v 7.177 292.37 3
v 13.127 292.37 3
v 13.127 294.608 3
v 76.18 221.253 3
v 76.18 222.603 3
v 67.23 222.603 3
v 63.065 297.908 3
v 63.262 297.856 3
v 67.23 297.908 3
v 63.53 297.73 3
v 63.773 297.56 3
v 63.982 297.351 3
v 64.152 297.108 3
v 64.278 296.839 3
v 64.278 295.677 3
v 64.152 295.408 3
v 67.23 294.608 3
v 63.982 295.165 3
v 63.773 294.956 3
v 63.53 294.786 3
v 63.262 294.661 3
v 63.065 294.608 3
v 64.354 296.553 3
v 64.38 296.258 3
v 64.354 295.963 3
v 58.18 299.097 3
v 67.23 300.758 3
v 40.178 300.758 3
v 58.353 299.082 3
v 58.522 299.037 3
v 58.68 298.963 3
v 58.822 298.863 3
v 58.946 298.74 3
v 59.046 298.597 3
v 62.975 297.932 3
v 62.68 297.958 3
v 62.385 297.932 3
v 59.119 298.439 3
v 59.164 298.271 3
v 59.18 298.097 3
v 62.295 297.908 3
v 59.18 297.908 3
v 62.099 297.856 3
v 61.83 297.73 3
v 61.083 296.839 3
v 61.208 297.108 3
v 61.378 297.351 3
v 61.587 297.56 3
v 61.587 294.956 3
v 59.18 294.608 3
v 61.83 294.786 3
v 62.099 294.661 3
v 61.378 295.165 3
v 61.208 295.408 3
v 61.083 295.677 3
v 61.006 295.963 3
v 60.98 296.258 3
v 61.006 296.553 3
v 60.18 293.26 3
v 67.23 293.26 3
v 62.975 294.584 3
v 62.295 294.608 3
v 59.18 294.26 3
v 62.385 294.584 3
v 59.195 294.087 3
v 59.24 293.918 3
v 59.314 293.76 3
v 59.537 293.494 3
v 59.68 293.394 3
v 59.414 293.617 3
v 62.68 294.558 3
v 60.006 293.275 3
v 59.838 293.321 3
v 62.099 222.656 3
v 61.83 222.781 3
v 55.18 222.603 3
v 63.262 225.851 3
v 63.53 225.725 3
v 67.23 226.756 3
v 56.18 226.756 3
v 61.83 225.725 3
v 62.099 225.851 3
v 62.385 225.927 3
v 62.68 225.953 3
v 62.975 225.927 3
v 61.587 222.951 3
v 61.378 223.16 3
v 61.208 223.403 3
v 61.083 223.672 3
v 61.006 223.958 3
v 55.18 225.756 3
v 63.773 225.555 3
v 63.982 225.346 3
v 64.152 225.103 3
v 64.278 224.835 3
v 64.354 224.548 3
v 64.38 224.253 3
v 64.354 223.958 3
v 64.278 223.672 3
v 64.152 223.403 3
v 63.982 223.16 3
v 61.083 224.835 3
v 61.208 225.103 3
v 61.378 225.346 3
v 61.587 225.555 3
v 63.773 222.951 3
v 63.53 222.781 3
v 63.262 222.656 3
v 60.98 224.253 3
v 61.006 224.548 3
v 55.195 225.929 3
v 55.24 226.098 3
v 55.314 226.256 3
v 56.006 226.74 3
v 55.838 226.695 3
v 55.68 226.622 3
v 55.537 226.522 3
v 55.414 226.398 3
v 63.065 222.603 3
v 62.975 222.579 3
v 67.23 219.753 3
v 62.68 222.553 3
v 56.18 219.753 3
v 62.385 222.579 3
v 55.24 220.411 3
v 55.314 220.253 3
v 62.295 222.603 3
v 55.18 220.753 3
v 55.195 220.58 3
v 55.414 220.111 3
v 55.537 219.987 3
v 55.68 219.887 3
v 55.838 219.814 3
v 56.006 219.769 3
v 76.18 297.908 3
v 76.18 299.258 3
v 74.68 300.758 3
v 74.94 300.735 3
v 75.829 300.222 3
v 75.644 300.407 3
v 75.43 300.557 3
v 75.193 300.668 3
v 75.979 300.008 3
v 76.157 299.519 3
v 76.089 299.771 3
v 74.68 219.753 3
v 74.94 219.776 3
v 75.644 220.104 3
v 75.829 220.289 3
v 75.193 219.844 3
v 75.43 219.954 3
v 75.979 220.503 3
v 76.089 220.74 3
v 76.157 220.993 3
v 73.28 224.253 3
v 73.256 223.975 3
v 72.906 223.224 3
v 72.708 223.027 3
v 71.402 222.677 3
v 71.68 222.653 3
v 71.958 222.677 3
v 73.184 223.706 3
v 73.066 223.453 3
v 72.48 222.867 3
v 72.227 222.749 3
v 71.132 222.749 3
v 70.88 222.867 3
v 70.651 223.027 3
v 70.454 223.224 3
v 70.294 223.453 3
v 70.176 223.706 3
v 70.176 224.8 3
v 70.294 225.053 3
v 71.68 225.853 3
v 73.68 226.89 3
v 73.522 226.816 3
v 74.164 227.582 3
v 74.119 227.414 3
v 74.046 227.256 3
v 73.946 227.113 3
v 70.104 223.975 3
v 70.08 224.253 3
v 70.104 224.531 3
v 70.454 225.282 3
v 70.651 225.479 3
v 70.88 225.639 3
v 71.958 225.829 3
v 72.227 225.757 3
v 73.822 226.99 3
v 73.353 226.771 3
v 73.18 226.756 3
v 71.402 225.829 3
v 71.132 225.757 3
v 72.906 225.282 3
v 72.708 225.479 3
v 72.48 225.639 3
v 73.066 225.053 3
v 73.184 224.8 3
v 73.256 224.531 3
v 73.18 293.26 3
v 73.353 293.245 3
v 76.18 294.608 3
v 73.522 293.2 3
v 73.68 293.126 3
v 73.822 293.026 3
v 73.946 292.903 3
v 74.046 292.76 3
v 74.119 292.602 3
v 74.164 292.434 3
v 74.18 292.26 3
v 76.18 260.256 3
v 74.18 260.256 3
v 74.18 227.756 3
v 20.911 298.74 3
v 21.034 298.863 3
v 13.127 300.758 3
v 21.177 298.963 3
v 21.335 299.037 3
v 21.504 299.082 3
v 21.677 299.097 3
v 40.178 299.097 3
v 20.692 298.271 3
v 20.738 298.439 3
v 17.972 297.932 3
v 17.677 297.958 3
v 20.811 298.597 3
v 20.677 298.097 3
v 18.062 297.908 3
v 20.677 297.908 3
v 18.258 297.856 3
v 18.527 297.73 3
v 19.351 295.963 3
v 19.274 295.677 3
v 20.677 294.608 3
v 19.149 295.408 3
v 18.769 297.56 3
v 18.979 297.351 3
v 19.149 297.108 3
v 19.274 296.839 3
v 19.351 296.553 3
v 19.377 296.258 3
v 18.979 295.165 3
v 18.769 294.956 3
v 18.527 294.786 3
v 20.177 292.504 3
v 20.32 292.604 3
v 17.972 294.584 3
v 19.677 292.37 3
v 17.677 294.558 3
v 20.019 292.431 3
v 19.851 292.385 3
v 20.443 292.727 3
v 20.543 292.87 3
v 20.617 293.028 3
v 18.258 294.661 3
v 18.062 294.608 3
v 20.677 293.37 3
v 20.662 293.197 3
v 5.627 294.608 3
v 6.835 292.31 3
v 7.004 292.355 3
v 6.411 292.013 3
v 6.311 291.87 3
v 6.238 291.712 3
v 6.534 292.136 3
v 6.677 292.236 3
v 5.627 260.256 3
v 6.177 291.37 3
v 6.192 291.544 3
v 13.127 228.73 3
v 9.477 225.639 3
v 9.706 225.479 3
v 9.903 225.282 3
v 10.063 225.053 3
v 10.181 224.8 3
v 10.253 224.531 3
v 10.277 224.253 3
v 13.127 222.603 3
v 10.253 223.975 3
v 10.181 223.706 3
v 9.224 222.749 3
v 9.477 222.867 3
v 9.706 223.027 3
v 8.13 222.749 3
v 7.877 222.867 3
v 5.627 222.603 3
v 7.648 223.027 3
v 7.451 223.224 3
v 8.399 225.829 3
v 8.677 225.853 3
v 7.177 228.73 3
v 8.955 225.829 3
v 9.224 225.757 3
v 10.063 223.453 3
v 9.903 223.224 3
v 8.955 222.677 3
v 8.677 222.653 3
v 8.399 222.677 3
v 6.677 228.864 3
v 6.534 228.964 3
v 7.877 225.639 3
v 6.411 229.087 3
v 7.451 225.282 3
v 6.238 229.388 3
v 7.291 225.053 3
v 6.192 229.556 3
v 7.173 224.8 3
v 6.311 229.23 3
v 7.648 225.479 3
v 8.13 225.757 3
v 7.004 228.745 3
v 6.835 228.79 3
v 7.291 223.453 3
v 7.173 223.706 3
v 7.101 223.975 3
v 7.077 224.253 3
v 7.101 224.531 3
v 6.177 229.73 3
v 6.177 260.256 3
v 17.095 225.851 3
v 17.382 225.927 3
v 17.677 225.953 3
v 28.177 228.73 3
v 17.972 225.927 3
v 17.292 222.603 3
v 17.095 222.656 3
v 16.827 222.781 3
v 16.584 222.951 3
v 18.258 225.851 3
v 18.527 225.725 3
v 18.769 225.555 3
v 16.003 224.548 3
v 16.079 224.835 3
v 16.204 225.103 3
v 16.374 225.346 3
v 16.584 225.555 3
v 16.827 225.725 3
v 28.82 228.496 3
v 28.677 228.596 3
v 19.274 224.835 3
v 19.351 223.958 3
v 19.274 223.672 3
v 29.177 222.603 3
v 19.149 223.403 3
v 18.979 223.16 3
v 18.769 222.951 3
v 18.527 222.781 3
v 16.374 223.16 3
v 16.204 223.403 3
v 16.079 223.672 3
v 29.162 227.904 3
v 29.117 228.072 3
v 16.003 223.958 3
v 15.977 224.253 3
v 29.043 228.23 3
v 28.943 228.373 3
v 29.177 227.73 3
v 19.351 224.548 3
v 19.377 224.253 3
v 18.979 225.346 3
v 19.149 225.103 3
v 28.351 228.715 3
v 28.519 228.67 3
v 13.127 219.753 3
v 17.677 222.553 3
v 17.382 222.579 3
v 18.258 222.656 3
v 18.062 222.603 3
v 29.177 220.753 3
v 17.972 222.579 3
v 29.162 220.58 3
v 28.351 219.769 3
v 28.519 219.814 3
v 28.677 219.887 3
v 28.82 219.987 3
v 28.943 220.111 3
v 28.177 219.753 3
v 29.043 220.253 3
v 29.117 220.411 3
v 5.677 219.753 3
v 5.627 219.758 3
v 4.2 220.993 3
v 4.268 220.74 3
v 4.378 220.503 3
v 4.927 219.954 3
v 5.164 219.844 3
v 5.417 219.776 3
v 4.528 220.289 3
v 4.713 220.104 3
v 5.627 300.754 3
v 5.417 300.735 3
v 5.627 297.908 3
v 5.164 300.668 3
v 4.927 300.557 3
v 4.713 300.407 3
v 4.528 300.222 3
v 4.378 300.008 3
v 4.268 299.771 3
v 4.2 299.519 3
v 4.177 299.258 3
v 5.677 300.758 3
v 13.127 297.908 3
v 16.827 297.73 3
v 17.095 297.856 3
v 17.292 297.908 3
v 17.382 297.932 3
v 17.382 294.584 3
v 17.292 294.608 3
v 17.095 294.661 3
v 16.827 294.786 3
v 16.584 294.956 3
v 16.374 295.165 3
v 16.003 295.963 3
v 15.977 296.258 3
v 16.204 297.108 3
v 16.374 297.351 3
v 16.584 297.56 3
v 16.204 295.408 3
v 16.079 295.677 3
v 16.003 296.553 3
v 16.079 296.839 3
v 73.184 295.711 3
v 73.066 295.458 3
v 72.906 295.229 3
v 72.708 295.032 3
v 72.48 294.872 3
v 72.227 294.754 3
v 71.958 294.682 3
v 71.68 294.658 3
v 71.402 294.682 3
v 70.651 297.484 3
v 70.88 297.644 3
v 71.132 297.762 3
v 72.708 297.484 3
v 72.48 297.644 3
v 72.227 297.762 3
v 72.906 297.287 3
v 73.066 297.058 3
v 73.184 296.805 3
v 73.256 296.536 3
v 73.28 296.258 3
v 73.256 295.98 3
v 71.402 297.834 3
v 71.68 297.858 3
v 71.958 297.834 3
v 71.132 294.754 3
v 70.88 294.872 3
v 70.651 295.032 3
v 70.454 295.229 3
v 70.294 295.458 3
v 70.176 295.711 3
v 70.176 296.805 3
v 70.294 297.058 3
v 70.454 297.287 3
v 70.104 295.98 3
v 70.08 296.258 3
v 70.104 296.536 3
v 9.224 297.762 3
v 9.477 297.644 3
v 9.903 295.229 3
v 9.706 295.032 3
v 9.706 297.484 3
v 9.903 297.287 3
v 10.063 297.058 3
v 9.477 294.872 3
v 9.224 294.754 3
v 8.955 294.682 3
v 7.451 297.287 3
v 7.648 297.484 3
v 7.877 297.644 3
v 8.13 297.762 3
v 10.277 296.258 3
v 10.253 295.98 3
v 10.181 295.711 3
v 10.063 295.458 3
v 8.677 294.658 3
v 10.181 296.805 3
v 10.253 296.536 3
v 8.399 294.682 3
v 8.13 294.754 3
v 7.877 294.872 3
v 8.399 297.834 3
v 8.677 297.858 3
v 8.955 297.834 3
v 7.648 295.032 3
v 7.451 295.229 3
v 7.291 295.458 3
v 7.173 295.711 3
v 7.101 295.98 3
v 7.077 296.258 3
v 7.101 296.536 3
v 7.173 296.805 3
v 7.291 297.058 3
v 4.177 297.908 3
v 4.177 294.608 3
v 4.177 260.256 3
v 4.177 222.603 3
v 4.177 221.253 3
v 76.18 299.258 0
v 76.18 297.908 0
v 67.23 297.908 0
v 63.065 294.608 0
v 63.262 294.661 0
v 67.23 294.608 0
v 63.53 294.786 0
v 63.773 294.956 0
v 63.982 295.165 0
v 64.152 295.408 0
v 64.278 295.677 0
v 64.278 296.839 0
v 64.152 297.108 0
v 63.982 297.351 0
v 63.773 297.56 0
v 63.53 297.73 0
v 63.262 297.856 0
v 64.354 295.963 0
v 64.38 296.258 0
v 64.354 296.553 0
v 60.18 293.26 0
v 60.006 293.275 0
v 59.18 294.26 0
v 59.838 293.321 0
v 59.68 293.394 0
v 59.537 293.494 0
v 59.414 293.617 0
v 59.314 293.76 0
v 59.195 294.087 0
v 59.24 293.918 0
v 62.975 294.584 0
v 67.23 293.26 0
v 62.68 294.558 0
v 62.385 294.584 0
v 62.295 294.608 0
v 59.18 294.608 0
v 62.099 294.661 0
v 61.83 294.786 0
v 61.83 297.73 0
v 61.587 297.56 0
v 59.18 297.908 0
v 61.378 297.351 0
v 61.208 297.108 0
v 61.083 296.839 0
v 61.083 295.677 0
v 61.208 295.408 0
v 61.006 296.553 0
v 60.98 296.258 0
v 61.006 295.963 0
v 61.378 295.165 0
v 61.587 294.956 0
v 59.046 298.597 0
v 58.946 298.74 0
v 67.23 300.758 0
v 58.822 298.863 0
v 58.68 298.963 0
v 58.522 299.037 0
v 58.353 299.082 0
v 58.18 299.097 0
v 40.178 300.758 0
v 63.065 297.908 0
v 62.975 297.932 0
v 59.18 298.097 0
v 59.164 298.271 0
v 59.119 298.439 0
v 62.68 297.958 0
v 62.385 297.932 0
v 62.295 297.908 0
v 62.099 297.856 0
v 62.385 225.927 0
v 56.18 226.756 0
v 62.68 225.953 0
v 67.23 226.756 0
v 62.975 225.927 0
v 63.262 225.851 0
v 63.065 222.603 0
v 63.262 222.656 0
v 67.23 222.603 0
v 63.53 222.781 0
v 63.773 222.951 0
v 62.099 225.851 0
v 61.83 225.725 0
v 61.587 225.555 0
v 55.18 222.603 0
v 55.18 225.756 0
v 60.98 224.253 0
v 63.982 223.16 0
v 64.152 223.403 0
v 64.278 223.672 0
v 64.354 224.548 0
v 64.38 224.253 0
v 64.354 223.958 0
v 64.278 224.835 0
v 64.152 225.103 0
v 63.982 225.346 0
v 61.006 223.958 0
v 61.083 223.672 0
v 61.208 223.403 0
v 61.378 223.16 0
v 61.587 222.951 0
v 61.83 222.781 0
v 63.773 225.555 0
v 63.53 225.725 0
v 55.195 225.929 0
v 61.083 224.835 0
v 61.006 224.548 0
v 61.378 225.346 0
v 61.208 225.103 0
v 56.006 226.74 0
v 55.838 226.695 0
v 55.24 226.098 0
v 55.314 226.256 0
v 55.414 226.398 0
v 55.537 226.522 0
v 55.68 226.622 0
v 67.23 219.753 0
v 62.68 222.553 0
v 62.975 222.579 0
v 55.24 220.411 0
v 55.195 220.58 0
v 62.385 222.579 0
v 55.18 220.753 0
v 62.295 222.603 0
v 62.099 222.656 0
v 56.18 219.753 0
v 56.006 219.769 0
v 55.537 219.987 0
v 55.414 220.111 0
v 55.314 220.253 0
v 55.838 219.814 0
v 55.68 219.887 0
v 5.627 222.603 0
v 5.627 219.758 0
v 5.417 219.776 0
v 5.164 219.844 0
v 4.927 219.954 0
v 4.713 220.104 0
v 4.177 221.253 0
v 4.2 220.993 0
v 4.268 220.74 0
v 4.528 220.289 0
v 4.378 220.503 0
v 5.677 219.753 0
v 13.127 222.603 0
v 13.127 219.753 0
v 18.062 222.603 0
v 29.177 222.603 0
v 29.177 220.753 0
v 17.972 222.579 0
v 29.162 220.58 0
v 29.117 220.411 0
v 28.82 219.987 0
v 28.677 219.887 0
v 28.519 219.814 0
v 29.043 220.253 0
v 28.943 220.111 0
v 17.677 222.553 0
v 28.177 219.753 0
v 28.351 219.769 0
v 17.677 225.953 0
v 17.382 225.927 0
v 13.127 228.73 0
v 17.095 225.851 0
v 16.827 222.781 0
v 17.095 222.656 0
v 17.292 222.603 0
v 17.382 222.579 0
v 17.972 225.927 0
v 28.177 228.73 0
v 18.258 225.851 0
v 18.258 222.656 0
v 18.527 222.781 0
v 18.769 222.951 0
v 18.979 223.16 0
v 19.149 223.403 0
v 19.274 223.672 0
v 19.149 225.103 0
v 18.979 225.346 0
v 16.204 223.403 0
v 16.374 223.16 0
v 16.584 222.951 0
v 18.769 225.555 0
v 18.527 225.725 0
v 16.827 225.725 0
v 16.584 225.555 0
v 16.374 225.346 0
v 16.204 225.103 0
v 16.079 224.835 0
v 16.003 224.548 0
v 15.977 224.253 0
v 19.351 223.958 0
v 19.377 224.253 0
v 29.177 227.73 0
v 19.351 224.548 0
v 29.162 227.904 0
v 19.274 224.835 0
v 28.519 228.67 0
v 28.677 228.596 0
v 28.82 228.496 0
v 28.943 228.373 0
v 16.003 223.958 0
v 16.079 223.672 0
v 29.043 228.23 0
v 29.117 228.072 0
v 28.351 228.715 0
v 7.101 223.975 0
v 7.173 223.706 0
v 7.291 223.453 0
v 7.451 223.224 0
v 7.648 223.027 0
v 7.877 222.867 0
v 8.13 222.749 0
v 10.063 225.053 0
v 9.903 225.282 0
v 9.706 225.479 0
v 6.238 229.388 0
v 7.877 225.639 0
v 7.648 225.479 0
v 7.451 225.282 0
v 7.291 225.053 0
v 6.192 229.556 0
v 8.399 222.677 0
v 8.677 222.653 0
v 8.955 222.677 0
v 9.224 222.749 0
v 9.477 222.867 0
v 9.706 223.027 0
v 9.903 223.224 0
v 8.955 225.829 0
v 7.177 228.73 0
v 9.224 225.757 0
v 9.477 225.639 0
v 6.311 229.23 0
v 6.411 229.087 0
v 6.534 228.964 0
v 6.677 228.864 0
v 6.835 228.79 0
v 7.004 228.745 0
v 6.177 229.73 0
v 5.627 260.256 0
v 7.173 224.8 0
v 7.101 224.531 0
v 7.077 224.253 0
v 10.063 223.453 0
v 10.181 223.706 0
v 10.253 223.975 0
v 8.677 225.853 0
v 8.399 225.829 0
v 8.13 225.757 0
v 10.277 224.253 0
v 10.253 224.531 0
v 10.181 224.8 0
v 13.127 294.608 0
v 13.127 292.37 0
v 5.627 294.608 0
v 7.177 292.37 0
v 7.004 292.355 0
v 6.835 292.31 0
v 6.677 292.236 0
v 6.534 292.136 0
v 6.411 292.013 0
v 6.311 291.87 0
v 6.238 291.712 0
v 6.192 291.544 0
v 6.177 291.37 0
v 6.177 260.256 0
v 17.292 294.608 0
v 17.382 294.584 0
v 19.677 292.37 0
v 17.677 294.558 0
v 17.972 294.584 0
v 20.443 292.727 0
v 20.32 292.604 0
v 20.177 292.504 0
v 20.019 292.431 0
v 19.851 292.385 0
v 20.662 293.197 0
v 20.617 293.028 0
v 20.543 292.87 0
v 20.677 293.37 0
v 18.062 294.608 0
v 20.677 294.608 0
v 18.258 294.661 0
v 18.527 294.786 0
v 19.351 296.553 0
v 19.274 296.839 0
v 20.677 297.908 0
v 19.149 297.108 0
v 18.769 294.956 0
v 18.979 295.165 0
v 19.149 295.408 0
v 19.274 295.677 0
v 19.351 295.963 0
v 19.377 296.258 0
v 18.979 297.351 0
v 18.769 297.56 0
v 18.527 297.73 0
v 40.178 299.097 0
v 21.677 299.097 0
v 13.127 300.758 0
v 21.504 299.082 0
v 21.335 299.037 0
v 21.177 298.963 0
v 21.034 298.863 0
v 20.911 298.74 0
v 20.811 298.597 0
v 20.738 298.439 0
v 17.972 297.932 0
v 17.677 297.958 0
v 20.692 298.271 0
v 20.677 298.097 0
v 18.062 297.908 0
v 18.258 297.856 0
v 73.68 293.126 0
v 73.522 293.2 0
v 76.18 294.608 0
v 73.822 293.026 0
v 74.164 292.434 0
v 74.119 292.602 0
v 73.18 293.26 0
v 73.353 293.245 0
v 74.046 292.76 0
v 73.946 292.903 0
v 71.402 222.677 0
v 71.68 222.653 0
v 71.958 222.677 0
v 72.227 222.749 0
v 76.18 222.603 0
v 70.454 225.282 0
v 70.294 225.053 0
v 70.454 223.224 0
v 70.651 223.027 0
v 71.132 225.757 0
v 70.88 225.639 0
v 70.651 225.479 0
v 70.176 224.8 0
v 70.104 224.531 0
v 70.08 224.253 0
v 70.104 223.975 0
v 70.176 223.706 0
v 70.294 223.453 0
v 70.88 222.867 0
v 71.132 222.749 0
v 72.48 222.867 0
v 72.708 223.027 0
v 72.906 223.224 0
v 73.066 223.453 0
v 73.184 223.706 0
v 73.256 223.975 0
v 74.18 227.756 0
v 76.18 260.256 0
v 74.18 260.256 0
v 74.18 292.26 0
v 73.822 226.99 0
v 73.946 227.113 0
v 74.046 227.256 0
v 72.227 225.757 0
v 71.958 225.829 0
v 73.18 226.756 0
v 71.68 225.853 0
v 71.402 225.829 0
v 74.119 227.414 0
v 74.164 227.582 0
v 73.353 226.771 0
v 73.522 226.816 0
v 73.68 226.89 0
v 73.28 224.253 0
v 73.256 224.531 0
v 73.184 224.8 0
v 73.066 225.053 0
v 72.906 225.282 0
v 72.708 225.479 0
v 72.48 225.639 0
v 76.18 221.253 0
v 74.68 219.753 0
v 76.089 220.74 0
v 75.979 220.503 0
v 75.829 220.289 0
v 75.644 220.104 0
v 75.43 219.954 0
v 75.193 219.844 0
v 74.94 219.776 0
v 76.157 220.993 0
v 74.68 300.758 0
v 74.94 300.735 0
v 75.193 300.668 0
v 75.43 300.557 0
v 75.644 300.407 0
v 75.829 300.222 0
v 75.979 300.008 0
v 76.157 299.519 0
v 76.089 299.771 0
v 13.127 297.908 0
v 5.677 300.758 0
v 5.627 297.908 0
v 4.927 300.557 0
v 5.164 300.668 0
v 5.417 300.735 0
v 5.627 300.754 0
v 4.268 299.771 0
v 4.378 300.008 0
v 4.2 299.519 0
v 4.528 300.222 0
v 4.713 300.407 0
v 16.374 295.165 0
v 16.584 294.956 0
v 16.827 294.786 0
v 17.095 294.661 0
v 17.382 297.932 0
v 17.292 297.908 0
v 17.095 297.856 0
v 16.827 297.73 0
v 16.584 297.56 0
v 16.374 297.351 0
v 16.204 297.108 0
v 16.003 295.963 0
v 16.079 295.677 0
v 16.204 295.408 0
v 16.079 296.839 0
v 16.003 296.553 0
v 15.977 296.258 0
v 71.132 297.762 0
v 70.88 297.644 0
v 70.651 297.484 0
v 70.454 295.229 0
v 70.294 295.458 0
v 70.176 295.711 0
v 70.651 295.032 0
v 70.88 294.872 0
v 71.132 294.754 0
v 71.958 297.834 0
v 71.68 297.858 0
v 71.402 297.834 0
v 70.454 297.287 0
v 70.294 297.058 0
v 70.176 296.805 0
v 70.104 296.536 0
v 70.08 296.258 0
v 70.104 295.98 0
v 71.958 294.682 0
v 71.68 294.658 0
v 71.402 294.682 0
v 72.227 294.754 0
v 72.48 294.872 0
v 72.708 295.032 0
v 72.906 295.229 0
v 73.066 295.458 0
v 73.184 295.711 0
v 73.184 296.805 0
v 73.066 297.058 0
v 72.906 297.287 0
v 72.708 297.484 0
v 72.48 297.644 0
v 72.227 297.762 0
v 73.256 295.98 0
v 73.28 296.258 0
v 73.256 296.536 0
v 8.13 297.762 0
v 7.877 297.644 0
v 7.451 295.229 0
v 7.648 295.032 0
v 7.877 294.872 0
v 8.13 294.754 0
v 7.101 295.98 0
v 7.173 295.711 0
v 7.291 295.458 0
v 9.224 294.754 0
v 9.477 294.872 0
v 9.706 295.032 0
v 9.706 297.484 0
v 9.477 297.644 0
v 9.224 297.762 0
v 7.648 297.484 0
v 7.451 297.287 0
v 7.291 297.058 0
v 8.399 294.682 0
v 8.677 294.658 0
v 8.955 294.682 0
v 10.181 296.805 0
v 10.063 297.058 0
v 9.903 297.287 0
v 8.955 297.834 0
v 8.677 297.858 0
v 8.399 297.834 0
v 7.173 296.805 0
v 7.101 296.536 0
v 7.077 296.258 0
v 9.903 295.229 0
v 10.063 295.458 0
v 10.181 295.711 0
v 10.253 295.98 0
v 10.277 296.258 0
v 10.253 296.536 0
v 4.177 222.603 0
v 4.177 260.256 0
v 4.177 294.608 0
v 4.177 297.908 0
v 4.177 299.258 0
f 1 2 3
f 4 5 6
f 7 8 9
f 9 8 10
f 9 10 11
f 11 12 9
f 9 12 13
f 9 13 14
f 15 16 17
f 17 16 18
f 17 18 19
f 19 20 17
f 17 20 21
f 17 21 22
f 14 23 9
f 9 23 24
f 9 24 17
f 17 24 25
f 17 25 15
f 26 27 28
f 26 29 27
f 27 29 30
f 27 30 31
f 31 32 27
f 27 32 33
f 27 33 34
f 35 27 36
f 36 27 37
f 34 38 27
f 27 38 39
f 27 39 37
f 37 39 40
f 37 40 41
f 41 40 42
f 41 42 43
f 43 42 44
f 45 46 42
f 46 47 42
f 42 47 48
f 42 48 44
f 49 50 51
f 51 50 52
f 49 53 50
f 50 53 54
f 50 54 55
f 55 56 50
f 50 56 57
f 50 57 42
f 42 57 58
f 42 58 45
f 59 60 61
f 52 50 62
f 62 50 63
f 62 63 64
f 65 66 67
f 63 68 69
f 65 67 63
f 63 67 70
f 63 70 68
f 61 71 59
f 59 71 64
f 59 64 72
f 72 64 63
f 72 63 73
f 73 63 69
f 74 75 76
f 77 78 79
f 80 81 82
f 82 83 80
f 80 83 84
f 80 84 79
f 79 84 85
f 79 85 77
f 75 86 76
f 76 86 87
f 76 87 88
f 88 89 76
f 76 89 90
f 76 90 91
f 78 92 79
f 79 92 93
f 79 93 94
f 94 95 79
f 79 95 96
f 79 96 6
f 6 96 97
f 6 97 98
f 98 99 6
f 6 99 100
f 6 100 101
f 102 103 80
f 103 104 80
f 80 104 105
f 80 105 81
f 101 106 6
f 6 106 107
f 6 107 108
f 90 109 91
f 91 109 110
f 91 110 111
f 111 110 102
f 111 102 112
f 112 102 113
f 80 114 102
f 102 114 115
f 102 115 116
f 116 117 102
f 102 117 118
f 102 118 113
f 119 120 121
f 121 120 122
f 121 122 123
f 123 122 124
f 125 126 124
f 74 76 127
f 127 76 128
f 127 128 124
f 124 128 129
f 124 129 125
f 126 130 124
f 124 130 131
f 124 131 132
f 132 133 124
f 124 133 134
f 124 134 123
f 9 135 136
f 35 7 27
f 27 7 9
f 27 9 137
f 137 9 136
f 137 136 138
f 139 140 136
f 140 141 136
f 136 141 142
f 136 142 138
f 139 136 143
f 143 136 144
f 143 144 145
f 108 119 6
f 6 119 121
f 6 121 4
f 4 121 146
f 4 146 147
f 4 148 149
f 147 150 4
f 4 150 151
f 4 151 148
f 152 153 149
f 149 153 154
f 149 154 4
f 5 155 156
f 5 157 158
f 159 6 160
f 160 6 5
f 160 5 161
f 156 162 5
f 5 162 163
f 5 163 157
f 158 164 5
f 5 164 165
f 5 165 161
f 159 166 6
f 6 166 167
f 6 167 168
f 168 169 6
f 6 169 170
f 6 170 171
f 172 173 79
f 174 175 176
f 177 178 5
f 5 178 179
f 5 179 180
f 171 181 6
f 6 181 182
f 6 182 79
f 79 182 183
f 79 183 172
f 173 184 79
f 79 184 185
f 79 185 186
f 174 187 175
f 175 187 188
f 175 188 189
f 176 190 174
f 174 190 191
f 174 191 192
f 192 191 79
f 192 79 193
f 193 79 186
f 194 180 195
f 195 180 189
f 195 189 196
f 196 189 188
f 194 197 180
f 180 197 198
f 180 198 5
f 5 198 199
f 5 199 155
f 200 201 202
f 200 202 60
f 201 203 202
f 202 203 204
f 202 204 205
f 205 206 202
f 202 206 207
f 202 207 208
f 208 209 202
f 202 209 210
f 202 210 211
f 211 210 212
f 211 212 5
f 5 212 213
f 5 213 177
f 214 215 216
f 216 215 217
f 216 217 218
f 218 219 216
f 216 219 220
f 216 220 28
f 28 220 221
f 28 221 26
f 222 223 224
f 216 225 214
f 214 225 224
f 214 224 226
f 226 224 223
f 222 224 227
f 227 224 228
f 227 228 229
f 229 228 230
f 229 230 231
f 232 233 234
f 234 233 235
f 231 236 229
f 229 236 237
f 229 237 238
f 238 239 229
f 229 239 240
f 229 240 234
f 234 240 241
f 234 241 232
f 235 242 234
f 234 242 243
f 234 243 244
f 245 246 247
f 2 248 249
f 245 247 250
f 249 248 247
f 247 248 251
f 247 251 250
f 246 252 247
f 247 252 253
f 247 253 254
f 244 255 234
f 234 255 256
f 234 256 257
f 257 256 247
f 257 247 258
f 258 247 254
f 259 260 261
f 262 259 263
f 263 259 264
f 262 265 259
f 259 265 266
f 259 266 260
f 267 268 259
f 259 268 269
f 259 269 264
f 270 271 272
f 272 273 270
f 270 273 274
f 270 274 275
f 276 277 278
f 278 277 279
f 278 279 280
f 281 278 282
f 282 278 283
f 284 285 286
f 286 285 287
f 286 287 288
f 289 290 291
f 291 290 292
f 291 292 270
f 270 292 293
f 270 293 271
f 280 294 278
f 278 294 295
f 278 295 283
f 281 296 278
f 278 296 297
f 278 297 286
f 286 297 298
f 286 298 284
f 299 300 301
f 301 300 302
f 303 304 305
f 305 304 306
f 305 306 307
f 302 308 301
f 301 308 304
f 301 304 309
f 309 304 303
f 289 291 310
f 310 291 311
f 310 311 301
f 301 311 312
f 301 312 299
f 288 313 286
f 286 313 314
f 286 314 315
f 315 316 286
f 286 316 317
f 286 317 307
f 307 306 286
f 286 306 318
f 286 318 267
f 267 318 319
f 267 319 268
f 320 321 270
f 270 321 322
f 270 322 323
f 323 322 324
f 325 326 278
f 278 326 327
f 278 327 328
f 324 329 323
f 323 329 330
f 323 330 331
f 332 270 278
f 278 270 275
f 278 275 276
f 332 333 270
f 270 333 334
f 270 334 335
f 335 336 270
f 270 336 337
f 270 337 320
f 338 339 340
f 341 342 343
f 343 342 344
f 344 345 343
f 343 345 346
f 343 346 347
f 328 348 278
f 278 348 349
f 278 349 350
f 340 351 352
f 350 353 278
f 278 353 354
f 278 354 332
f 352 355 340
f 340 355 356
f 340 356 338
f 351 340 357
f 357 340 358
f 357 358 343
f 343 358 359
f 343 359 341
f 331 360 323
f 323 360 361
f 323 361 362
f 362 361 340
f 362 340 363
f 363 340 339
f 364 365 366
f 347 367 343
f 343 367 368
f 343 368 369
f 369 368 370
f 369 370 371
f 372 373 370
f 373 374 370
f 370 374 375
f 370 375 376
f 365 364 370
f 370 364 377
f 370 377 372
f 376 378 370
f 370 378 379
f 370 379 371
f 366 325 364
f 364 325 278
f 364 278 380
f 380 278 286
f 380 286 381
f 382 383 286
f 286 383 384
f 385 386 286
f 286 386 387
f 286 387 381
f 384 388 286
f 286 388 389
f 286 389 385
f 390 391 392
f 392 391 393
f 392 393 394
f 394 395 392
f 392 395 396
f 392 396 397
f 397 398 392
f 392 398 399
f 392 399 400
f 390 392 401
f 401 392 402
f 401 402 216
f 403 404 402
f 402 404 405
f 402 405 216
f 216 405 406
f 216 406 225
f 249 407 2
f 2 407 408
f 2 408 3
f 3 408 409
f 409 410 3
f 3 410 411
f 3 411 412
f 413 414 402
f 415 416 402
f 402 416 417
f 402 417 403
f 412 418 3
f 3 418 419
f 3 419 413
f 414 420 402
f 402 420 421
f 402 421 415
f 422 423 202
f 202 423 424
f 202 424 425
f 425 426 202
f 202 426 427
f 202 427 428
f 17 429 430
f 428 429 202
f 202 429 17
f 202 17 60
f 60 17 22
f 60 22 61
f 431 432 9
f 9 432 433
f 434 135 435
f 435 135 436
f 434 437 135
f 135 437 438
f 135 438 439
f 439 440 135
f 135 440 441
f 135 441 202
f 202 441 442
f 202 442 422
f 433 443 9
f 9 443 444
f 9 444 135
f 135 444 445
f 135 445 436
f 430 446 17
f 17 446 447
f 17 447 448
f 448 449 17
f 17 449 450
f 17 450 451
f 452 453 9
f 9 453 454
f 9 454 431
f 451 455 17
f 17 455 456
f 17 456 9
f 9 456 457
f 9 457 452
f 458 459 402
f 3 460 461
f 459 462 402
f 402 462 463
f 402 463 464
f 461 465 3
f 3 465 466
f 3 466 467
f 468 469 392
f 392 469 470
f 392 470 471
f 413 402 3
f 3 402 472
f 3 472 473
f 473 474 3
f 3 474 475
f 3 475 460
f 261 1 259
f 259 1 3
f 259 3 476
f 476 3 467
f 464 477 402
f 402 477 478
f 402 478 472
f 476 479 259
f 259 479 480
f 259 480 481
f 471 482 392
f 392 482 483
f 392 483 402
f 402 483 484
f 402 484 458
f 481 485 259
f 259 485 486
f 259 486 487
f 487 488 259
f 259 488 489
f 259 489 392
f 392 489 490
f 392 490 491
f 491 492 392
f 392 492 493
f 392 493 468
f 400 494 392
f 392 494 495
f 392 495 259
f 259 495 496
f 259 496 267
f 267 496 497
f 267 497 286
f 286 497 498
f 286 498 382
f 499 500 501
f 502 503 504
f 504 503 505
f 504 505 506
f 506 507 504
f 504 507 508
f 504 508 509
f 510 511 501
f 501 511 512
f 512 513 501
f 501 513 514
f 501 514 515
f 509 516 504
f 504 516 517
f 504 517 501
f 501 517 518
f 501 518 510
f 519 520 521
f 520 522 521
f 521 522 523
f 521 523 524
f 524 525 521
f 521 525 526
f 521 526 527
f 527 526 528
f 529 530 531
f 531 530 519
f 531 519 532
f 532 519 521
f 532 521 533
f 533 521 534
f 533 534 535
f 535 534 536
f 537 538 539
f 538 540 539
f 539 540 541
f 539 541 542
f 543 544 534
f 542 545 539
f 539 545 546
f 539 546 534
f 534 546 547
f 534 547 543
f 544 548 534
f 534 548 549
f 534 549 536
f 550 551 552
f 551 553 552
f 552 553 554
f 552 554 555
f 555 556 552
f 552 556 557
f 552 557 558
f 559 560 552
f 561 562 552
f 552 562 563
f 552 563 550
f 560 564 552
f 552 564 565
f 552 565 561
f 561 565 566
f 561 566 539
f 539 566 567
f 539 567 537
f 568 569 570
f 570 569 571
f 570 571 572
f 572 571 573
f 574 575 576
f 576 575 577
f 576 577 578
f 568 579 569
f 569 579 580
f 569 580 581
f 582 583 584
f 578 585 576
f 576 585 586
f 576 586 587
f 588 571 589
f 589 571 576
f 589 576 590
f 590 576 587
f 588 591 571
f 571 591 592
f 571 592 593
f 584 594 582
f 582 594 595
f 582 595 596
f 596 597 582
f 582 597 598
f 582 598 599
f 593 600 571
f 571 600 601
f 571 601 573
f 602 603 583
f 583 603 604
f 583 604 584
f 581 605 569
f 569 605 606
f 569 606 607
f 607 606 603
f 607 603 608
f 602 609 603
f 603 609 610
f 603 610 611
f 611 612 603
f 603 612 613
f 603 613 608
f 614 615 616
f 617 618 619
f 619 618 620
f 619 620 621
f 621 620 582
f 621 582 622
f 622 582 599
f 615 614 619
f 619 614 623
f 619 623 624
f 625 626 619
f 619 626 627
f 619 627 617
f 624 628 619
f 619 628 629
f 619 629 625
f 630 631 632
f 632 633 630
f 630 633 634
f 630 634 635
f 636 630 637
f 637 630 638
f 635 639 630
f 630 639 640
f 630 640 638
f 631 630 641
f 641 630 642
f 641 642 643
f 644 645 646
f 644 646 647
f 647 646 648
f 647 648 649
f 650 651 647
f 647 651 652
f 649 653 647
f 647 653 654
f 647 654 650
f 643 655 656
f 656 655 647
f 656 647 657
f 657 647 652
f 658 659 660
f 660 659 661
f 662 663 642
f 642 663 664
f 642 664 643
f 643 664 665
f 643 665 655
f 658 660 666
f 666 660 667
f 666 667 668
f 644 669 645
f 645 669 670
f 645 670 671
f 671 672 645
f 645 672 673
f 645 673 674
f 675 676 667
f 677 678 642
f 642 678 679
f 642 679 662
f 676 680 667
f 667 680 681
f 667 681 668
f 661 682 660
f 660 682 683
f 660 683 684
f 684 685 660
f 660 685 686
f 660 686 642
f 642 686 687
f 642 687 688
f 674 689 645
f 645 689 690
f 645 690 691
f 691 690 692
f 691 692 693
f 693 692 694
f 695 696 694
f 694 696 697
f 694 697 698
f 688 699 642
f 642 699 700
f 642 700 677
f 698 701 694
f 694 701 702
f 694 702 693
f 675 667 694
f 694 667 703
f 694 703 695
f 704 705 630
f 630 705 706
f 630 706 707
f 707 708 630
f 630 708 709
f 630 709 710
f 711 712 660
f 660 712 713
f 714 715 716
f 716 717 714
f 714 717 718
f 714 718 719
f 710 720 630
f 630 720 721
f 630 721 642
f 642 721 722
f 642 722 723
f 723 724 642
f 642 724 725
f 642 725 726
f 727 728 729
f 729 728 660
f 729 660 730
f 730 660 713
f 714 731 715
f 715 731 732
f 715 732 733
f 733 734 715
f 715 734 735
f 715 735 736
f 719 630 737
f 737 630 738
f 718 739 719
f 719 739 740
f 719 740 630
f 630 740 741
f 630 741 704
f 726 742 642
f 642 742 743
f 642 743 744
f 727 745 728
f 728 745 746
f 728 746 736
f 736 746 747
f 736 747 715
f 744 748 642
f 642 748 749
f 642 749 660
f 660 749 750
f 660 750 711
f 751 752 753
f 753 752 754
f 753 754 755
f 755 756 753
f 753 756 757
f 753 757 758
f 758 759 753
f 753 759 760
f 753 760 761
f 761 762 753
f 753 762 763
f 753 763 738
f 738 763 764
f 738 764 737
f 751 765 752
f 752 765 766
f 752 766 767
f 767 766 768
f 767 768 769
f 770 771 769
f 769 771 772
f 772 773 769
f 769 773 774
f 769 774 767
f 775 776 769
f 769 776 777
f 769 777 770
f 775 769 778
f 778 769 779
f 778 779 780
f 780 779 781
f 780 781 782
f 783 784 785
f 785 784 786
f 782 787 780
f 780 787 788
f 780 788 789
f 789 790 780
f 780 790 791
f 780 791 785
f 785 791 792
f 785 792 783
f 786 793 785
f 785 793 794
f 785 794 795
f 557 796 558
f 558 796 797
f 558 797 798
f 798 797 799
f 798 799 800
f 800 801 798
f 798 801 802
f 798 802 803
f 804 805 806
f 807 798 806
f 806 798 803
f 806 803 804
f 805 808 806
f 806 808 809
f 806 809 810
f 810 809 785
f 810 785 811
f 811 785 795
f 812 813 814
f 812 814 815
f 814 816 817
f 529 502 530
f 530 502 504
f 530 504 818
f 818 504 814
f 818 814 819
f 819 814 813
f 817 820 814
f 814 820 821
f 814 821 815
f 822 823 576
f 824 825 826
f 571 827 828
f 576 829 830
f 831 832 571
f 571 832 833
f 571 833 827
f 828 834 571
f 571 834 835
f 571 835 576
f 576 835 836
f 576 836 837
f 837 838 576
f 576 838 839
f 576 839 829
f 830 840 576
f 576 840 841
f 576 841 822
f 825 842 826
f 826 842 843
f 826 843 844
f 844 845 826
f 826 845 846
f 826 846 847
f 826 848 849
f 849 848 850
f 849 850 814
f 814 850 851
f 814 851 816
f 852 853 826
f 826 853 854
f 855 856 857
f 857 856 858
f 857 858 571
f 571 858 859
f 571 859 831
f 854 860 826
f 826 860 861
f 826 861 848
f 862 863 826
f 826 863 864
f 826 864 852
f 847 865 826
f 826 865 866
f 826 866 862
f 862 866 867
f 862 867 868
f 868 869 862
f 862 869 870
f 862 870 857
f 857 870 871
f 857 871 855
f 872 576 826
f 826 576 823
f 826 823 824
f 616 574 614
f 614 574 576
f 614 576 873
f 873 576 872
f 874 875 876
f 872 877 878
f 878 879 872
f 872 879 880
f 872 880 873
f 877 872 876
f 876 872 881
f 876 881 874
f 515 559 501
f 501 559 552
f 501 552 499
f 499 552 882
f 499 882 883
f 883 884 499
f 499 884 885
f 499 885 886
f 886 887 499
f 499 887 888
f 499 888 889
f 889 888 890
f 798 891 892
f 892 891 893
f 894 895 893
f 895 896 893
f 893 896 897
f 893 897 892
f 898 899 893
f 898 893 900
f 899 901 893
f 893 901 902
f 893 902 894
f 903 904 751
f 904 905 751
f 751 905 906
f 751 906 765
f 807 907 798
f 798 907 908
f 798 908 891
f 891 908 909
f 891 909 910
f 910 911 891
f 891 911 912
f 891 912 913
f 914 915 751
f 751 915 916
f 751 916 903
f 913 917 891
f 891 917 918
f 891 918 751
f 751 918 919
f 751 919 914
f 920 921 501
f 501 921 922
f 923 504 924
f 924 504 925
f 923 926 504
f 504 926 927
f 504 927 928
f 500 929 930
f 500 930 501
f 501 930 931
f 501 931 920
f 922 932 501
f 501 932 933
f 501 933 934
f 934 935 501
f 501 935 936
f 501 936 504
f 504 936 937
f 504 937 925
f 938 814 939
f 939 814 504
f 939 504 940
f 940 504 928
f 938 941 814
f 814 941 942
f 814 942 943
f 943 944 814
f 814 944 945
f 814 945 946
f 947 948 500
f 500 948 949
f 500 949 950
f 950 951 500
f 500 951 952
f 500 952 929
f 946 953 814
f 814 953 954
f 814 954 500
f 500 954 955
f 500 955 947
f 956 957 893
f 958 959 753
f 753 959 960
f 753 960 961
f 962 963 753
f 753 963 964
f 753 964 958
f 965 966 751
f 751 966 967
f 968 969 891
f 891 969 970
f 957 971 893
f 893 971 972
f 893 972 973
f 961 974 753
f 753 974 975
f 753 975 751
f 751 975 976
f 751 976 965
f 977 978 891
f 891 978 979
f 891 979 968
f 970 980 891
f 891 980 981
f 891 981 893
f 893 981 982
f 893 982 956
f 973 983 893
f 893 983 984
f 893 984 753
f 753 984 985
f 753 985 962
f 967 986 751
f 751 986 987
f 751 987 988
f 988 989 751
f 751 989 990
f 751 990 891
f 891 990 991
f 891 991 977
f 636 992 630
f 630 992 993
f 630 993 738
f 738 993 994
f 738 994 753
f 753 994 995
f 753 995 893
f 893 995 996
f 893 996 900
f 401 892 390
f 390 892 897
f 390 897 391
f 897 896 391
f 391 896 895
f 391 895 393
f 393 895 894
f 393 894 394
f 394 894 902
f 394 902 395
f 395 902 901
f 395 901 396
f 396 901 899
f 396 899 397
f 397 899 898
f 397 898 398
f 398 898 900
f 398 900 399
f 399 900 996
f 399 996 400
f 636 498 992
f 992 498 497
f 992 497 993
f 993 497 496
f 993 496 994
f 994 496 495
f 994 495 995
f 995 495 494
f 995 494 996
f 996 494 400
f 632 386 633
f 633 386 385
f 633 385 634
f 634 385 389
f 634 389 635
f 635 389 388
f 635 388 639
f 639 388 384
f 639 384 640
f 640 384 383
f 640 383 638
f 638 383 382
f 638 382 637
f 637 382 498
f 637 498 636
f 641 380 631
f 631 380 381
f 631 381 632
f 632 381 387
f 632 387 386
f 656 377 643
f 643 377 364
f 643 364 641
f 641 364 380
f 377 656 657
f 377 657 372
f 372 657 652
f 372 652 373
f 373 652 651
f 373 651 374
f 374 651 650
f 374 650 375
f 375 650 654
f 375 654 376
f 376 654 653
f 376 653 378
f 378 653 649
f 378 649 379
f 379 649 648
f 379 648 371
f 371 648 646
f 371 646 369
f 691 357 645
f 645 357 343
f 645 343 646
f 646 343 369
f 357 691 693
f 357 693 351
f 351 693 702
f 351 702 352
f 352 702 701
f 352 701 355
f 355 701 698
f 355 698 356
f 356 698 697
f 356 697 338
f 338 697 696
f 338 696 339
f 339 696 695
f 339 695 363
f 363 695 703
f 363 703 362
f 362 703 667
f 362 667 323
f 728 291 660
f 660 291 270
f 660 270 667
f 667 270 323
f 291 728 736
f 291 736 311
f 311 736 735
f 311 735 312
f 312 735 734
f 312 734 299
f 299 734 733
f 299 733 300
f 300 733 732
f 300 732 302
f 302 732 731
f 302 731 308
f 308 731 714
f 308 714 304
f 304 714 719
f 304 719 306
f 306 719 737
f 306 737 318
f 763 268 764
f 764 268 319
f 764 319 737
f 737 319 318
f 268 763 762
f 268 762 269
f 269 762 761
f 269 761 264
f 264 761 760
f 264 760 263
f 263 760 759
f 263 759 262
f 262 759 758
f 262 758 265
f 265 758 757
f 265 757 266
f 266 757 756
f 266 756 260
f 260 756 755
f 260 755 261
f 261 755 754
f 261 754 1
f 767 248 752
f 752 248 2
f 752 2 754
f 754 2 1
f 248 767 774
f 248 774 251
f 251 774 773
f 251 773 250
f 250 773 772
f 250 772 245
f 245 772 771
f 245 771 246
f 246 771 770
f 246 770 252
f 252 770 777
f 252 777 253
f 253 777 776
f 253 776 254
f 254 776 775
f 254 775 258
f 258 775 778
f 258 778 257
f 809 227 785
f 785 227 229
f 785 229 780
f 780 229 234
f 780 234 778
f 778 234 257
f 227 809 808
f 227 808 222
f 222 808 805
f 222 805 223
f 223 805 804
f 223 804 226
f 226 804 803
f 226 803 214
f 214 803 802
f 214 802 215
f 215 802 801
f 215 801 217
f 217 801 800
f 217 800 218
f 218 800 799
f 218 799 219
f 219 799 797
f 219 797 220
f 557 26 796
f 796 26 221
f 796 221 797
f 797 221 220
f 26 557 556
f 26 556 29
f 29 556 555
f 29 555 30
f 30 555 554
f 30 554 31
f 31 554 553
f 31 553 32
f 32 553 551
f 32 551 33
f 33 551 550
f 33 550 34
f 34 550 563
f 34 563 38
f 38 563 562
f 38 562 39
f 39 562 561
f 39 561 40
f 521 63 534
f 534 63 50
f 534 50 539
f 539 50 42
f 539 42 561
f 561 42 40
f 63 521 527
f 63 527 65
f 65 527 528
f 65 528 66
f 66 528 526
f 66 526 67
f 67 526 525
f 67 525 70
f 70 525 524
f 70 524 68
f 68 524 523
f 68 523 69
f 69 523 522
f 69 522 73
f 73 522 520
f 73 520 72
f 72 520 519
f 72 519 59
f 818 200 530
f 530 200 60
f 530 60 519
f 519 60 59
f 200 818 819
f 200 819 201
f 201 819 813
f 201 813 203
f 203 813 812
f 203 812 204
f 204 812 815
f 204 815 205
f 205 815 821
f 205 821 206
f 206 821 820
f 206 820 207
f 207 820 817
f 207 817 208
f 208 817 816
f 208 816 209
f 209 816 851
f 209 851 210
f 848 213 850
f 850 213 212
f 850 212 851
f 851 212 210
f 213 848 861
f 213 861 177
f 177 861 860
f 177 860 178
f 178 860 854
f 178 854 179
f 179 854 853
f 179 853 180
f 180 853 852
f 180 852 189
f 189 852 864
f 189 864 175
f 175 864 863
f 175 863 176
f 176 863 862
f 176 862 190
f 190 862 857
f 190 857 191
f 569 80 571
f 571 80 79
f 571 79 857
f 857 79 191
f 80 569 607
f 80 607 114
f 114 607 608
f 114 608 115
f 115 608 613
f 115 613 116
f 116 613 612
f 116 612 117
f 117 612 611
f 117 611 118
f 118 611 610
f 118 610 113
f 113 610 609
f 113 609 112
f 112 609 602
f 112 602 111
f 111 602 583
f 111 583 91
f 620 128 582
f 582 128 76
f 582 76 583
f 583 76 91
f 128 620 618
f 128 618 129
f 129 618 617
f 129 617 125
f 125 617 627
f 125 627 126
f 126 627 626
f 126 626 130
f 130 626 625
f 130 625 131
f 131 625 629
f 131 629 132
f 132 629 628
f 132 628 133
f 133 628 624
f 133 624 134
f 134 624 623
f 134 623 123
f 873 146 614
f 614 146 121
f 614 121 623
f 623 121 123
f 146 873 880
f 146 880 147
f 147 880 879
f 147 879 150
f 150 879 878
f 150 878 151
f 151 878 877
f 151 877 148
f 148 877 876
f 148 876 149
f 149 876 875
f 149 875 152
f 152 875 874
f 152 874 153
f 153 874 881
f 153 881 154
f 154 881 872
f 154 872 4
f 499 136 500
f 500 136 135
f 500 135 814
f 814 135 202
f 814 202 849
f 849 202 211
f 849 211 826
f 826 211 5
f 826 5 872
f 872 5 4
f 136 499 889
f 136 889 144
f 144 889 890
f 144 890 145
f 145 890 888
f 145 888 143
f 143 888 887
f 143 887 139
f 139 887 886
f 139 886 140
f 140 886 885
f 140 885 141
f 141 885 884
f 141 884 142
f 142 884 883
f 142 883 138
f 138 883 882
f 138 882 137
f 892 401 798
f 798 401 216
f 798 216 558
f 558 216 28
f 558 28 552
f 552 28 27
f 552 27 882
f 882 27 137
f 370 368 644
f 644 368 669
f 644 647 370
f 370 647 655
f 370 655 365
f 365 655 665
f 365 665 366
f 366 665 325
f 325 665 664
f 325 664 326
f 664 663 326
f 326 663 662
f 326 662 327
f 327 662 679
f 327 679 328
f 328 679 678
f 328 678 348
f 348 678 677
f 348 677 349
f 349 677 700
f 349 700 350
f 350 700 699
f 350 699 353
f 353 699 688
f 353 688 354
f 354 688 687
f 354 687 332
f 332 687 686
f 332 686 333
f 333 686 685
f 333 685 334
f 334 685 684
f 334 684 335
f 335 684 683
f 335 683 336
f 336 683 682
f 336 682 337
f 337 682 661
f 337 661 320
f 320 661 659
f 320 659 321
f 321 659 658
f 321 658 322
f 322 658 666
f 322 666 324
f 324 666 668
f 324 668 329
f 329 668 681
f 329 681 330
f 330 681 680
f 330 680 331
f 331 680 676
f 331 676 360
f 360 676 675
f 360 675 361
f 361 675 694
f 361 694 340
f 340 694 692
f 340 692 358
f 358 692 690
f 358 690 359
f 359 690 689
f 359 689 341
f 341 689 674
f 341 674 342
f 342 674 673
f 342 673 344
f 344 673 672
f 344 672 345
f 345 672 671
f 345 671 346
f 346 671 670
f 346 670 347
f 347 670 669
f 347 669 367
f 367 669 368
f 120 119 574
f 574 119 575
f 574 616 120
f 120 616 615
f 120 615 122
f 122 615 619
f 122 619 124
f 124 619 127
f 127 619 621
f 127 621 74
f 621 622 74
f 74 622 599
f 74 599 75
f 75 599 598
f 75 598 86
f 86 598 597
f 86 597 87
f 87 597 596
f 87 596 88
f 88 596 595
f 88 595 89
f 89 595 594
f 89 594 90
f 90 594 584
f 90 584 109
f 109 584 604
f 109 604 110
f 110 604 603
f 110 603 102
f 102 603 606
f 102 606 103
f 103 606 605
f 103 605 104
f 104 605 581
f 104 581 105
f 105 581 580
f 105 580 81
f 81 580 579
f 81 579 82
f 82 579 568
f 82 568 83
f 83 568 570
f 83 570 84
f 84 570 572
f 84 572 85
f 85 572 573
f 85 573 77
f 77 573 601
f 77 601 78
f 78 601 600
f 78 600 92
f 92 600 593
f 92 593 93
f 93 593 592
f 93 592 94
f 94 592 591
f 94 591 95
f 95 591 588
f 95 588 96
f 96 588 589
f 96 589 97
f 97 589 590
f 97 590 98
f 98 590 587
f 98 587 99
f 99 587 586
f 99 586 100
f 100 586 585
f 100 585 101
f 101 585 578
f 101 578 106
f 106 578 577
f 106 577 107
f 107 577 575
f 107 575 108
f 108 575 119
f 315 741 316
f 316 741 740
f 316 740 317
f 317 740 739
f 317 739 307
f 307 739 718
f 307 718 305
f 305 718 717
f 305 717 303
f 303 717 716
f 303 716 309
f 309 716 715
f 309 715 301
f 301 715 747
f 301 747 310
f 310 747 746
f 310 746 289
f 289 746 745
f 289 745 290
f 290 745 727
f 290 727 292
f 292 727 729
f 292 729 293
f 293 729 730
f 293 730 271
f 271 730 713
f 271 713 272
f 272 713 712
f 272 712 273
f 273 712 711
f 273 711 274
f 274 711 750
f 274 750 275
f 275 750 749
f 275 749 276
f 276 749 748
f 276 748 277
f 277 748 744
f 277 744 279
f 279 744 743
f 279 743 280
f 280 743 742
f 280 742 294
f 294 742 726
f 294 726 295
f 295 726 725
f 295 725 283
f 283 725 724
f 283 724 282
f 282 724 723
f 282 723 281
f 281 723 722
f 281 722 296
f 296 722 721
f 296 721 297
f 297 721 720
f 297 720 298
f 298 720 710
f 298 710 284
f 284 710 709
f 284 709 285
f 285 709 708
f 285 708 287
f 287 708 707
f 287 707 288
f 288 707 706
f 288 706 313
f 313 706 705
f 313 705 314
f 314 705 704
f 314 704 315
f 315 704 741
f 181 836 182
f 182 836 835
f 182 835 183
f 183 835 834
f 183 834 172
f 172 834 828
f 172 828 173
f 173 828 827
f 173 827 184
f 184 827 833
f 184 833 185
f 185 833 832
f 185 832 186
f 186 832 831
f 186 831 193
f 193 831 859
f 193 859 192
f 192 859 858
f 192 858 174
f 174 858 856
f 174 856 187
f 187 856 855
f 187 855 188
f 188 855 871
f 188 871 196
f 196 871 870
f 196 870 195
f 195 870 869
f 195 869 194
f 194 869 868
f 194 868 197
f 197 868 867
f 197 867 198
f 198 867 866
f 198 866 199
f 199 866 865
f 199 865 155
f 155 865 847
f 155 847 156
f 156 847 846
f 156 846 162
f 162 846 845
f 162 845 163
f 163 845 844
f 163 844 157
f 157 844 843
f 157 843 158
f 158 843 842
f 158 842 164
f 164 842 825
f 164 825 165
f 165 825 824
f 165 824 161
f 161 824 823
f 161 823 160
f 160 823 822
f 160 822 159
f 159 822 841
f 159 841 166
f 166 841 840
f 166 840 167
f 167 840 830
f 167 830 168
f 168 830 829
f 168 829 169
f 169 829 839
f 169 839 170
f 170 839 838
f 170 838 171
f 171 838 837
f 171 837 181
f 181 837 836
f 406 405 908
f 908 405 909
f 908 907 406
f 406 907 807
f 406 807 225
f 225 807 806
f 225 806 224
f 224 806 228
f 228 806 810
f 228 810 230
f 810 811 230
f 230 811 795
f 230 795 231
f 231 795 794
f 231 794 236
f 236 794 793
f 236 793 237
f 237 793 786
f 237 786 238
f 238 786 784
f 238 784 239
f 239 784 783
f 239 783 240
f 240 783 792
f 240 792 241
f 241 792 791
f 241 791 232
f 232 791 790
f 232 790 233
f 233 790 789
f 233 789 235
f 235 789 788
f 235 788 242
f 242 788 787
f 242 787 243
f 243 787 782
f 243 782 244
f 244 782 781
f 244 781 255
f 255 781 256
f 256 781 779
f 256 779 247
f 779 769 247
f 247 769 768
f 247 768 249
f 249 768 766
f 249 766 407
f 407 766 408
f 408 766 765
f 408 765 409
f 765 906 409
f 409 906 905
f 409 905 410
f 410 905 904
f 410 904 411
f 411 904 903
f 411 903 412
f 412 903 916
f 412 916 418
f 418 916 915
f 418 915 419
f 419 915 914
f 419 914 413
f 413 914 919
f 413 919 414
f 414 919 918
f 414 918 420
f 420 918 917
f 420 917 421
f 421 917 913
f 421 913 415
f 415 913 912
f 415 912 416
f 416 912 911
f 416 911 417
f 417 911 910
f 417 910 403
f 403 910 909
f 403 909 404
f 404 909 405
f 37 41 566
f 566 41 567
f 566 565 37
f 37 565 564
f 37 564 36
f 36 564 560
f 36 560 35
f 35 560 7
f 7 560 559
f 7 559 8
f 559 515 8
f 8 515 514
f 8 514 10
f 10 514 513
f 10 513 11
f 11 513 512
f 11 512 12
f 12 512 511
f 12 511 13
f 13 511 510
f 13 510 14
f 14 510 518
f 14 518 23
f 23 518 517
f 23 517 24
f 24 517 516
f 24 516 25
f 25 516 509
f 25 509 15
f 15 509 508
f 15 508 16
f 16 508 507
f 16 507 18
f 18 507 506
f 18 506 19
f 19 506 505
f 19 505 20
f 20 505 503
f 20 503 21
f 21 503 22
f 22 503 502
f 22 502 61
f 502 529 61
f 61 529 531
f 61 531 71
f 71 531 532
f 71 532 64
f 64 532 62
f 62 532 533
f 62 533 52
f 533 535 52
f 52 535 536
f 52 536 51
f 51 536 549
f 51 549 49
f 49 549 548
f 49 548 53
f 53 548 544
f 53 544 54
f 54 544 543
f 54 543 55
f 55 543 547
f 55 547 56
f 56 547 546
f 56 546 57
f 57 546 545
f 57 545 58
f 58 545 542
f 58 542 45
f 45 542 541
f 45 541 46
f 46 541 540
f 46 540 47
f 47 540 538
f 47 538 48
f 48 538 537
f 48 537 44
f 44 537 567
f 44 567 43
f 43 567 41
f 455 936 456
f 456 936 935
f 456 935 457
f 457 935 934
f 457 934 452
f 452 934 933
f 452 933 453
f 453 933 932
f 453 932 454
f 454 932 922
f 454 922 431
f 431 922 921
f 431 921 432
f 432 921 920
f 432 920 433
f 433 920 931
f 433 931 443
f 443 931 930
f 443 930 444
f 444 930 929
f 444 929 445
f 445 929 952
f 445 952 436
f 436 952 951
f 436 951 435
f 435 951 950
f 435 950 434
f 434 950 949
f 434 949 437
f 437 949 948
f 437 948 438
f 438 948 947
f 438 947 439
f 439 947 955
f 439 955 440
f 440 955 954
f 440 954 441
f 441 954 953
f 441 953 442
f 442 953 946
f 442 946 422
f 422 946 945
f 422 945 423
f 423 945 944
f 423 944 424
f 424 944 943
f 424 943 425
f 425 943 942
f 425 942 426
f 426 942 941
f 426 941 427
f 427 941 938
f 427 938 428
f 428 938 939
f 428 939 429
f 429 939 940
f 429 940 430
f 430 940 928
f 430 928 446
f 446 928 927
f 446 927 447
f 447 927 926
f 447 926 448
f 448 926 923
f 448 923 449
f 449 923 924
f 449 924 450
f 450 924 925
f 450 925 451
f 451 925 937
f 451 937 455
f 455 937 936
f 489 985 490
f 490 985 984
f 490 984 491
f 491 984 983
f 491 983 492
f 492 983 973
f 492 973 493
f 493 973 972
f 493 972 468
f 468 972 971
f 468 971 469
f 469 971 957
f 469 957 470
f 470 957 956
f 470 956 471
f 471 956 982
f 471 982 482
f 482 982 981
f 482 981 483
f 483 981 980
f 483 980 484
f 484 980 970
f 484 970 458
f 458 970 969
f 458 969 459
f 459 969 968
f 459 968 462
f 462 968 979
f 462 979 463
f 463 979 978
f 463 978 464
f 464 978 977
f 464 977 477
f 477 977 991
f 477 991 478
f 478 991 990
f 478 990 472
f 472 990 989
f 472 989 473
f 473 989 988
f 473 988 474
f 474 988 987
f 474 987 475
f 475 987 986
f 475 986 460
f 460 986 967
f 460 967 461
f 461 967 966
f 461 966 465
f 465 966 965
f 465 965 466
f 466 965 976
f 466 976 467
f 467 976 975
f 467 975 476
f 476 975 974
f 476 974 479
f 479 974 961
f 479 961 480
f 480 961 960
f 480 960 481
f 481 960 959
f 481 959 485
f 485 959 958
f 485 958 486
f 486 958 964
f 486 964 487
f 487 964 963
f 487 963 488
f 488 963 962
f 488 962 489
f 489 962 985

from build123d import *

# Parameters (mm, degrees)
MODEL_R                 = 1.7
MODEL_R_2               = 1.600279216
SALIENTE_EXTRUIR1_DEPTH = 3


with BuildPart() as part:
    # Model → Saliente-Extruir1 (new body)
    with BuildSketch(Plane.XY):
        with BuildLine():
            Line((74.679802956, 300.758040435), (5.677398721, 300.758040435))
            ThreePointArc((5.677398721, 300.758040435), (4.61673855, 300.318700606), (4.177398721, 299.258040435))
            Line((4.177398721, 299.258040435), (4.177398721, 221.253430577))
            ThreePointArc((4.177398721, 221.253430577), (4.61673855, 220.192770405), (5.677398721, 219.753430577))
            Line((5.677398721, 219.753430577), (28.17721751, 219.753430577))
            ThreePointArc((28.17721751, 219.753430577), (28.884324291, 220.046323796), (29.17721751, 220.753430577))
            Line((29.17721751, 220.753430577), (29.17721751, 227.730037779))
            ThreePointArc((29.17721751, 227.730037779), (28.884324291, 228.43714456), (28.17721751, 228.730037779))
            Line((28.17721751, 228.730037779), (7.17721751, 228.730037779))
            ThreePointArc((7.17721751, 228.730037779), (6.470110728, 229.022930998), (6.17721751, 229.730037779))
            Line((6.17721751, 229.730037779), (6.17721751, 291.370238846))
            ThreePointArc((6.17721751, 291.370238846), (6.470110728, 292.077345627), (7.17721751, 292.370238846))
            Line((7.17721751, 292.370238846), (19.67721751, 292.370238846))
            ThreePointArc((19.67721751, 292.370238846), (20.384324291, 292.663132064), (20.67721751, 293.370238846))
            Line((20.67721751, 293.370238846), (20.67721751, 298.097066693))
            ThreePointArc((20.67721751, 298.097066693), (20.970110728, 298.804173474), (21.67721751, 299.097066693))
            Line((21.67721751, 299.097066693), (58.179621744, 299.097066693))
            ThreePointArc((58.179621744, 299.097066693), (58.886728525, 298.804173474), (59.179621744, 298.097066693))
            Line((59.179621744, 298.097066693), (59.179621744, 294.260238845))
            ThreePointArc((59.179621744, 294.260238845), (59.472514963, 293.553132064), (60.179621744, 293.260238845))
            Line((60.179621744, 293.260238845), (73.179621744, 293.260238845))
            ThreePointArc((73.179621744, 293.260238845), (73.886728525, 292.967345627), (74.179621744, 292.260238845))
            Line((74.179621744, 292.260238845), (74.179621744, 227.755628988))
            ThreePointArc((74.179621744, 227.755628988), (73.886728525, 227.048522207), (73.179621744, 226.755628988))
            Line((73.179621744, 226.755628988), (56.179621744, 226.755628988))
            ThreePointArc((56.179621744, 226.755628988), (55.472514963, 226.462735769), (55.179621744, 225.755628988))
            Line((55.179621744, 225.755628988), (55.179621744, 220.753430577))
            ThreePointArc((55.179621744, 220.753430577), (55.472514963, 220.046323796), (56.179621744, 219.753430577))
            Line((56.179621744, 219.753430577), (74.679802956, 219.753430577))
            ThreePointArc((74.679802956, 219.753430577), (75.740463127, 220.192770405), (76.179802956, 221.253430577))
            Line((76.179802956, 221.253430577), (76.179802956, 299.258040435))
            ThreePointArc((76.179802956, 299.258040435), (75.740463127, 300.318700606), (74.679802956, 300.758040435))
        make_face()
        with Locations((17.676729717, 224.253096075)):
            Circle(MODEL_R, mode=Mode.SUBTRACT)
        with Locations((62.680137458, 224.253096075)):
            Circle(MODEL_R, mode=Mode.SUBTRACT)
        with Locations((8.677064219, 224.253096075)):
            Circle(MODEL_R_2, mode=Mode.SUBTRACT)
        with Locations((71.679802956, 224.253096075)):
            Circle(MODEL_R_2, mode=Mode.SUBTRACT)
        with Locations((17.676729717, 296.258040435)):
            Circle(MODEL_R, mode=Mode.SUBTRACT)
        with Locations((62.680137458, 296.258040435)):
            Circle(MODEL_R, mode=Mode.SUBTRACT)
        with Locations((71.679802956, 296.258040435)):
            Circle(MODEL_R_2, mode=Mode.SUBTRACT)
        with Locations((8.677064219, 296.258040435)):
            Circle(MODEL_R_2, mode=Mode.SUBTRACT)
    extrude(amount=SALIENTE_EXTRUIR1_DEPTH)


solid = part.part
